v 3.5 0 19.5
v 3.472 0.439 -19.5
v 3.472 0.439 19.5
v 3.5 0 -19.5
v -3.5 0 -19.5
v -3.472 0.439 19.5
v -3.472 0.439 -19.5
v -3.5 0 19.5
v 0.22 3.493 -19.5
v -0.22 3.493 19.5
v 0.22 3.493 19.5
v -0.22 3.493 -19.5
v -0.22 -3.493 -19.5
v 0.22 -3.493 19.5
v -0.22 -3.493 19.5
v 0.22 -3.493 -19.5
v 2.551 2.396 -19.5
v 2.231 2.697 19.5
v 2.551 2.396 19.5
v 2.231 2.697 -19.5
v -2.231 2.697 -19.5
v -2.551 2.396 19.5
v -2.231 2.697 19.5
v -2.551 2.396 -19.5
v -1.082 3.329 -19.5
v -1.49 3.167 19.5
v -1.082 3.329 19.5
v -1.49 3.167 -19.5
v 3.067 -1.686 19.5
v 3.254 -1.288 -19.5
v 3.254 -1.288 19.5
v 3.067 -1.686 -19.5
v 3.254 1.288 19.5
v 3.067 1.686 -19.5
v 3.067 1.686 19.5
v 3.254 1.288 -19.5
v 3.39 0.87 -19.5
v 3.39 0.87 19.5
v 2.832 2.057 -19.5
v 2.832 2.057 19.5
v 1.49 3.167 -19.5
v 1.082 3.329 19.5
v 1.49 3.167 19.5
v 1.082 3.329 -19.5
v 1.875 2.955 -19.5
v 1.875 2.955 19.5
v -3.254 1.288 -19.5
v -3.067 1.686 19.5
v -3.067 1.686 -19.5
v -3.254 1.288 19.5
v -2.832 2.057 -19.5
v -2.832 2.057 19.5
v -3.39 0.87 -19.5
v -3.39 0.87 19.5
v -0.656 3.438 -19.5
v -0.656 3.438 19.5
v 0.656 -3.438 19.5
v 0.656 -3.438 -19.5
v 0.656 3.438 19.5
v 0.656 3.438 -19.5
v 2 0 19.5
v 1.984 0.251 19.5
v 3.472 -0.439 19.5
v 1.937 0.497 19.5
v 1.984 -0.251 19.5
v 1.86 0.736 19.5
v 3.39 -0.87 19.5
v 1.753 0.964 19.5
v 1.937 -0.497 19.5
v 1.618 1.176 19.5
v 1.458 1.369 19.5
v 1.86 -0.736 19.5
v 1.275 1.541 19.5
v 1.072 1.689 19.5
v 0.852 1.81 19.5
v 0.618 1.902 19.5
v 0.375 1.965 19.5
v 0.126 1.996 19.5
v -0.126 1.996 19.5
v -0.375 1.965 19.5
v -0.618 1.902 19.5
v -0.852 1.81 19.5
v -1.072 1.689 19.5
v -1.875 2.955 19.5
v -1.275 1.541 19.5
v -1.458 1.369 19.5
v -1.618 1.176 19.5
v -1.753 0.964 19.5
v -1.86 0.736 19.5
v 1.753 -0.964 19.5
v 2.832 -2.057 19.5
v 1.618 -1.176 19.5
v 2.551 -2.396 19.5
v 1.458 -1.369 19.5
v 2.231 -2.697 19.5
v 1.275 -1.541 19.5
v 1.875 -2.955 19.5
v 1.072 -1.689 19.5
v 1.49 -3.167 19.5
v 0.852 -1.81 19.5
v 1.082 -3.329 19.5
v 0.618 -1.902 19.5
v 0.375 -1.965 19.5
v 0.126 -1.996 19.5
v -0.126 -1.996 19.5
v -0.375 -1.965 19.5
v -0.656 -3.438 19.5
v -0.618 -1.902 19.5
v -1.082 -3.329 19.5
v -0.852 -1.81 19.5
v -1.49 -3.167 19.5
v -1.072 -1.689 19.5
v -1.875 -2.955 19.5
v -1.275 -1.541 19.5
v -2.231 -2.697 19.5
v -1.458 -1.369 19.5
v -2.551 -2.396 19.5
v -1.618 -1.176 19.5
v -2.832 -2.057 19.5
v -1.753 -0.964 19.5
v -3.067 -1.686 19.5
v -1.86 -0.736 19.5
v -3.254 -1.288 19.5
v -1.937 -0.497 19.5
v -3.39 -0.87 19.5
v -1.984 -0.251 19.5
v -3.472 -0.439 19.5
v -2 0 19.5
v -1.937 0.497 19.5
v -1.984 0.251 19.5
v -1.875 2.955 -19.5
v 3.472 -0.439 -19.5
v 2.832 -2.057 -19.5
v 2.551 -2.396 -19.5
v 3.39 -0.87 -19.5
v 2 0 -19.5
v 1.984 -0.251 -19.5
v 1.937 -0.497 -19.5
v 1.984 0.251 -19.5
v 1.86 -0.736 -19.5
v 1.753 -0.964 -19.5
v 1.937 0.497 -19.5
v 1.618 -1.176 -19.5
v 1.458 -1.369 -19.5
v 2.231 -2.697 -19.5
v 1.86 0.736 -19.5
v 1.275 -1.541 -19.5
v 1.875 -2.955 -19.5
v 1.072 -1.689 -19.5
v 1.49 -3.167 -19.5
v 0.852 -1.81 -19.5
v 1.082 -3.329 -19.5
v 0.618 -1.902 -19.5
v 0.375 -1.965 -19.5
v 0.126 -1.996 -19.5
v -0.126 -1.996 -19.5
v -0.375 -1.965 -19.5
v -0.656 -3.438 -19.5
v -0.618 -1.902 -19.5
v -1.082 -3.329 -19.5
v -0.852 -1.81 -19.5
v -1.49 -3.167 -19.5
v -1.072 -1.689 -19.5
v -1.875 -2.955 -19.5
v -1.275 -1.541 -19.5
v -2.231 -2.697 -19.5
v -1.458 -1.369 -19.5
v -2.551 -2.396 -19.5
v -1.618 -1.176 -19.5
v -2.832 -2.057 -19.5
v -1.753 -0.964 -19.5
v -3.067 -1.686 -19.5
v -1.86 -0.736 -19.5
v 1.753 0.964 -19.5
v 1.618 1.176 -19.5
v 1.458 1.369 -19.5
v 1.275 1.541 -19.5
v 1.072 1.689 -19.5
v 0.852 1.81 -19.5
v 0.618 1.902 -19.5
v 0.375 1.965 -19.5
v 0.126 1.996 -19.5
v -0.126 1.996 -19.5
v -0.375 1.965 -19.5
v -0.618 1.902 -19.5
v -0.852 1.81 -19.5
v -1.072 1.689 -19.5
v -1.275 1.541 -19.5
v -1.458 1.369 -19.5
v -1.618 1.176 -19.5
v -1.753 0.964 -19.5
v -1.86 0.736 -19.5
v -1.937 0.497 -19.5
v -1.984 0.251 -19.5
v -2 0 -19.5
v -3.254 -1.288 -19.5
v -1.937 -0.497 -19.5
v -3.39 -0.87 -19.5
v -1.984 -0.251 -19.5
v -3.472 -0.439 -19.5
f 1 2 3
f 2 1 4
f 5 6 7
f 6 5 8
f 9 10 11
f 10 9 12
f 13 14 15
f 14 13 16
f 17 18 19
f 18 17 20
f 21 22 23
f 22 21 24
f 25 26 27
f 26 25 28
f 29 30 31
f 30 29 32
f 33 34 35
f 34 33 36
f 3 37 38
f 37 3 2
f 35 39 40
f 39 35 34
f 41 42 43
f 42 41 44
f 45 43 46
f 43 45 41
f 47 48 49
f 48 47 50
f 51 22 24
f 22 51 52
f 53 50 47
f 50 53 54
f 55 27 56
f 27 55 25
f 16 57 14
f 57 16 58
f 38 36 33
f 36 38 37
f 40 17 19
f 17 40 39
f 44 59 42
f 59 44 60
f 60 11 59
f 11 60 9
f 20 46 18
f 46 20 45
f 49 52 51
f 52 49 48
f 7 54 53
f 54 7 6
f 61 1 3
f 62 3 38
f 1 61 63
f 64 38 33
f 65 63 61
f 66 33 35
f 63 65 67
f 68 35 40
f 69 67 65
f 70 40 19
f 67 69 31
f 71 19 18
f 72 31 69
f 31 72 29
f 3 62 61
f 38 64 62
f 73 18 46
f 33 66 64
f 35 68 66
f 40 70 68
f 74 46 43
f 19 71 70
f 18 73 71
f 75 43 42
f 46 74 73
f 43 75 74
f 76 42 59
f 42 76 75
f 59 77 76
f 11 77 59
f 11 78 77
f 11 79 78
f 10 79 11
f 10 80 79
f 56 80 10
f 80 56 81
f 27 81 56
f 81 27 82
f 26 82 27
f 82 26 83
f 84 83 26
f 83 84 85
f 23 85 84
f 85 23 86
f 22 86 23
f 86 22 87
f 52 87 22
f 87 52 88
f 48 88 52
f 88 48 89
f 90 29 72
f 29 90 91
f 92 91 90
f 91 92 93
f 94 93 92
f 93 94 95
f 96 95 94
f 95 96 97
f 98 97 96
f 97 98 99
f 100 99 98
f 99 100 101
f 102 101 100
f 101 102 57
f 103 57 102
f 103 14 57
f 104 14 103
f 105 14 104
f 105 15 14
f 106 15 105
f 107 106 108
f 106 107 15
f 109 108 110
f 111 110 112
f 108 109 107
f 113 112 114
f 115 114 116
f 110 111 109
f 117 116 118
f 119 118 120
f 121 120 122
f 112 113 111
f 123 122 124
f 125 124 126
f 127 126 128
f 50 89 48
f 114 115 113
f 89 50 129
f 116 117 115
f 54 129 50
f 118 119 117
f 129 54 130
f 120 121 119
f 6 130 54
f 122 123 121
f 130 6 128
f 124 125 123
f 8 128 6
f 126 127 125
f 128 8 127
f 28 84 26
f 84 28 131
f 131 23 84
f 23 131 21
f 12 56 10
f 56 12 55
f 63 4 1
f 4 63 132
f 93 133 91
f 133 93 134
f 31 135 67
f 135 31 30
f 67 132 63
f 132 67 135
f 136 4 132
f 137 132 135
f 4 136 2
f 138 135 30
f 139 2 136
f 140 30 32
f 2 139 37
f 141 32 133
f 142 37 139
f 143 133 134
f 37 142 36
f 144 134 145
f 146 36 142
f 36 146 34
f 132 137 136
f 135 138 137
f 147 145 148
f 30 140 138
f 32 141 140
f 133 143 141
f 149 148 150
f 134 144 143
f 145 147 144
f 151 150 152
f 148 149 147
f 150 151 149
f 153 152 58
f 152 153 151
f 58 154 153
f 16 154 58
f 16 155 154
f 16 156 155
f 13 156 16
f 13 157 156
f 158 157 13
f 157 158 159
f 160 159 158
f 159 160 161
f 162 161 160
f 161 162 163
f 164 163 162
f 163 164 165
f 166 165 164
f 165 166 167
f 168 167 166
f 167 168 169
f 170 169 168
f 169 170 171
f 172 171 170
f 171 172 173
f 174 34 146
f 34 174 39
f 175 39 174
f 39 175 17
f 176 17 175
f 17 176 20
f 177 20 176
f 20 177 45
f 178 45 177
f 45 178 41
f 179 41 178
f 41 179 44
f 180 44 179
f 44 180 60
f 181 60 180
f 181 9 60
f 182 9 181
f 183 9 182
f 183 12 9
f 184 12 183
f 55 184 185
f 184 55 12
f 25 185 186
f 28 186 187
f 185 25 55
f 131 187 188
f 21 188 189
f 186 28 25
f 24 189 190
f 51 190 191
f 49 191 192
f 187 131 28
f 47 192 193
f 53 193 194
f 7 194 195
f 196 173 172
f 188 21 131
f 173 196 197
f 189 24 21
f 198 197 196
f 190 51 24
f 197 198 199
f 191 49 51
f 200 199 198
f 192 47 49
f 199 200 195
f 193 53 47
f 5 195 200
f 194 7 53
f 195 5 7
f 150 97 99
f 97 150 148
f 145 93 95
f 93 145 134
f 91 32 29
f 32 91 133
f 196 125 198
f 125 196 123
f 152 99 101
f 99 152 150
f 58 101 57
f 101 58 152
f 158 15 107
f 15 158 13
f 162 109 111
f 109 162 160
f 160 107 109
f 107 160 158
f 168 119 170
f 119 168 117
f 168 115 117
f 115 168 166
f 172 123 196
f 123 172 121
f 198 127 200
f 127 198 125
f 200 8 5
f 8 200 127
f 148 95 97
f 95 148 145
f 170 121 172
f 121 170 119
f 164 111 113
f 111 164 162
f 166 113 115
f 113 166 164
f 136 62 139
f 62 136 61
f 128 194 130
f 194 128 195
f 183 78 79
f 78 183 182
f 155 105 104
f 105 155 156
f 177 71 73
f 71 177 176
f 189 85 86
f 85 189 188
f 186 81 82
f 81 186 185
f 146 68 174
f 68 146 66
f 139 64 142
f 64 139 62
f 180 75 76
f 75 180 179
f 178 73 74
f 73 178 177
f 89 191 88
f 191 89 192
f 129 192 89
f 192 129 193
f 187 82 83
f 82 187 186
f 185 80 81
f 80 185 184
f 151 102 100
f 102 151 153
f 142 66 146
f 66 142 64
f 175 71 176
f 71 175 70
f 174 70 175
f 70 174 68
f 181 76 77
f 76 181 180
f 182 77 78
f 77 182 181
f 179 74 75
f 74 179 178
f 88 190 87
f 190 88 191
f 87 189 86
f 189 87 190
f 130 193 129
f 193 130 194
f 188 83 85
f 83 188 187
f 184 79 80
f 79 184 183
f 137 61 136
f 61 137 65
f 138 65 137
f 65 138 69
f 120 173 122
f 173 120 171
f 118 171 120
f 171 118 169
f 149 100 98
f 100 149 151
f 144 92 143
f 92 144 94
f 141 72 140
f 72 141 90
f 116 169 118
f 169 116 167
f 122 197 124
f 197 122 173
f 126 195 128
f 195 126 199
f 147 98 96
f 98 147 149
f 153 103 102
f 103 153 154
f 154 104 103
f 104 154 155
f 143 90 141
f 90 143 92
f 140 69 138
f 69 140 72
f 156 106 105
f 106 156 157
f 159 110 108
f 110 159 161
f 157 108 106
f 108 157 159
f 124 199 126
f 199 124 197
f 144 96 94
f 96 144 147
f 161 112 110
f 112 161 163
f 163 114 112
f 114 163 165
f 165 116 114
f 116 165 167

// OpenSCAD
$fn = 50;


difference() {
	union() {
		translate(v = [0, 0, -19.5000000000]) {
			cylinder(h = 39, r = 3.5000000000);
		}
	}
	union() {
		translate(v = [0, 0, -100.0000000000]) {
			cylinder(h = 200, r = 2.0000000000);
		}
	}
}
